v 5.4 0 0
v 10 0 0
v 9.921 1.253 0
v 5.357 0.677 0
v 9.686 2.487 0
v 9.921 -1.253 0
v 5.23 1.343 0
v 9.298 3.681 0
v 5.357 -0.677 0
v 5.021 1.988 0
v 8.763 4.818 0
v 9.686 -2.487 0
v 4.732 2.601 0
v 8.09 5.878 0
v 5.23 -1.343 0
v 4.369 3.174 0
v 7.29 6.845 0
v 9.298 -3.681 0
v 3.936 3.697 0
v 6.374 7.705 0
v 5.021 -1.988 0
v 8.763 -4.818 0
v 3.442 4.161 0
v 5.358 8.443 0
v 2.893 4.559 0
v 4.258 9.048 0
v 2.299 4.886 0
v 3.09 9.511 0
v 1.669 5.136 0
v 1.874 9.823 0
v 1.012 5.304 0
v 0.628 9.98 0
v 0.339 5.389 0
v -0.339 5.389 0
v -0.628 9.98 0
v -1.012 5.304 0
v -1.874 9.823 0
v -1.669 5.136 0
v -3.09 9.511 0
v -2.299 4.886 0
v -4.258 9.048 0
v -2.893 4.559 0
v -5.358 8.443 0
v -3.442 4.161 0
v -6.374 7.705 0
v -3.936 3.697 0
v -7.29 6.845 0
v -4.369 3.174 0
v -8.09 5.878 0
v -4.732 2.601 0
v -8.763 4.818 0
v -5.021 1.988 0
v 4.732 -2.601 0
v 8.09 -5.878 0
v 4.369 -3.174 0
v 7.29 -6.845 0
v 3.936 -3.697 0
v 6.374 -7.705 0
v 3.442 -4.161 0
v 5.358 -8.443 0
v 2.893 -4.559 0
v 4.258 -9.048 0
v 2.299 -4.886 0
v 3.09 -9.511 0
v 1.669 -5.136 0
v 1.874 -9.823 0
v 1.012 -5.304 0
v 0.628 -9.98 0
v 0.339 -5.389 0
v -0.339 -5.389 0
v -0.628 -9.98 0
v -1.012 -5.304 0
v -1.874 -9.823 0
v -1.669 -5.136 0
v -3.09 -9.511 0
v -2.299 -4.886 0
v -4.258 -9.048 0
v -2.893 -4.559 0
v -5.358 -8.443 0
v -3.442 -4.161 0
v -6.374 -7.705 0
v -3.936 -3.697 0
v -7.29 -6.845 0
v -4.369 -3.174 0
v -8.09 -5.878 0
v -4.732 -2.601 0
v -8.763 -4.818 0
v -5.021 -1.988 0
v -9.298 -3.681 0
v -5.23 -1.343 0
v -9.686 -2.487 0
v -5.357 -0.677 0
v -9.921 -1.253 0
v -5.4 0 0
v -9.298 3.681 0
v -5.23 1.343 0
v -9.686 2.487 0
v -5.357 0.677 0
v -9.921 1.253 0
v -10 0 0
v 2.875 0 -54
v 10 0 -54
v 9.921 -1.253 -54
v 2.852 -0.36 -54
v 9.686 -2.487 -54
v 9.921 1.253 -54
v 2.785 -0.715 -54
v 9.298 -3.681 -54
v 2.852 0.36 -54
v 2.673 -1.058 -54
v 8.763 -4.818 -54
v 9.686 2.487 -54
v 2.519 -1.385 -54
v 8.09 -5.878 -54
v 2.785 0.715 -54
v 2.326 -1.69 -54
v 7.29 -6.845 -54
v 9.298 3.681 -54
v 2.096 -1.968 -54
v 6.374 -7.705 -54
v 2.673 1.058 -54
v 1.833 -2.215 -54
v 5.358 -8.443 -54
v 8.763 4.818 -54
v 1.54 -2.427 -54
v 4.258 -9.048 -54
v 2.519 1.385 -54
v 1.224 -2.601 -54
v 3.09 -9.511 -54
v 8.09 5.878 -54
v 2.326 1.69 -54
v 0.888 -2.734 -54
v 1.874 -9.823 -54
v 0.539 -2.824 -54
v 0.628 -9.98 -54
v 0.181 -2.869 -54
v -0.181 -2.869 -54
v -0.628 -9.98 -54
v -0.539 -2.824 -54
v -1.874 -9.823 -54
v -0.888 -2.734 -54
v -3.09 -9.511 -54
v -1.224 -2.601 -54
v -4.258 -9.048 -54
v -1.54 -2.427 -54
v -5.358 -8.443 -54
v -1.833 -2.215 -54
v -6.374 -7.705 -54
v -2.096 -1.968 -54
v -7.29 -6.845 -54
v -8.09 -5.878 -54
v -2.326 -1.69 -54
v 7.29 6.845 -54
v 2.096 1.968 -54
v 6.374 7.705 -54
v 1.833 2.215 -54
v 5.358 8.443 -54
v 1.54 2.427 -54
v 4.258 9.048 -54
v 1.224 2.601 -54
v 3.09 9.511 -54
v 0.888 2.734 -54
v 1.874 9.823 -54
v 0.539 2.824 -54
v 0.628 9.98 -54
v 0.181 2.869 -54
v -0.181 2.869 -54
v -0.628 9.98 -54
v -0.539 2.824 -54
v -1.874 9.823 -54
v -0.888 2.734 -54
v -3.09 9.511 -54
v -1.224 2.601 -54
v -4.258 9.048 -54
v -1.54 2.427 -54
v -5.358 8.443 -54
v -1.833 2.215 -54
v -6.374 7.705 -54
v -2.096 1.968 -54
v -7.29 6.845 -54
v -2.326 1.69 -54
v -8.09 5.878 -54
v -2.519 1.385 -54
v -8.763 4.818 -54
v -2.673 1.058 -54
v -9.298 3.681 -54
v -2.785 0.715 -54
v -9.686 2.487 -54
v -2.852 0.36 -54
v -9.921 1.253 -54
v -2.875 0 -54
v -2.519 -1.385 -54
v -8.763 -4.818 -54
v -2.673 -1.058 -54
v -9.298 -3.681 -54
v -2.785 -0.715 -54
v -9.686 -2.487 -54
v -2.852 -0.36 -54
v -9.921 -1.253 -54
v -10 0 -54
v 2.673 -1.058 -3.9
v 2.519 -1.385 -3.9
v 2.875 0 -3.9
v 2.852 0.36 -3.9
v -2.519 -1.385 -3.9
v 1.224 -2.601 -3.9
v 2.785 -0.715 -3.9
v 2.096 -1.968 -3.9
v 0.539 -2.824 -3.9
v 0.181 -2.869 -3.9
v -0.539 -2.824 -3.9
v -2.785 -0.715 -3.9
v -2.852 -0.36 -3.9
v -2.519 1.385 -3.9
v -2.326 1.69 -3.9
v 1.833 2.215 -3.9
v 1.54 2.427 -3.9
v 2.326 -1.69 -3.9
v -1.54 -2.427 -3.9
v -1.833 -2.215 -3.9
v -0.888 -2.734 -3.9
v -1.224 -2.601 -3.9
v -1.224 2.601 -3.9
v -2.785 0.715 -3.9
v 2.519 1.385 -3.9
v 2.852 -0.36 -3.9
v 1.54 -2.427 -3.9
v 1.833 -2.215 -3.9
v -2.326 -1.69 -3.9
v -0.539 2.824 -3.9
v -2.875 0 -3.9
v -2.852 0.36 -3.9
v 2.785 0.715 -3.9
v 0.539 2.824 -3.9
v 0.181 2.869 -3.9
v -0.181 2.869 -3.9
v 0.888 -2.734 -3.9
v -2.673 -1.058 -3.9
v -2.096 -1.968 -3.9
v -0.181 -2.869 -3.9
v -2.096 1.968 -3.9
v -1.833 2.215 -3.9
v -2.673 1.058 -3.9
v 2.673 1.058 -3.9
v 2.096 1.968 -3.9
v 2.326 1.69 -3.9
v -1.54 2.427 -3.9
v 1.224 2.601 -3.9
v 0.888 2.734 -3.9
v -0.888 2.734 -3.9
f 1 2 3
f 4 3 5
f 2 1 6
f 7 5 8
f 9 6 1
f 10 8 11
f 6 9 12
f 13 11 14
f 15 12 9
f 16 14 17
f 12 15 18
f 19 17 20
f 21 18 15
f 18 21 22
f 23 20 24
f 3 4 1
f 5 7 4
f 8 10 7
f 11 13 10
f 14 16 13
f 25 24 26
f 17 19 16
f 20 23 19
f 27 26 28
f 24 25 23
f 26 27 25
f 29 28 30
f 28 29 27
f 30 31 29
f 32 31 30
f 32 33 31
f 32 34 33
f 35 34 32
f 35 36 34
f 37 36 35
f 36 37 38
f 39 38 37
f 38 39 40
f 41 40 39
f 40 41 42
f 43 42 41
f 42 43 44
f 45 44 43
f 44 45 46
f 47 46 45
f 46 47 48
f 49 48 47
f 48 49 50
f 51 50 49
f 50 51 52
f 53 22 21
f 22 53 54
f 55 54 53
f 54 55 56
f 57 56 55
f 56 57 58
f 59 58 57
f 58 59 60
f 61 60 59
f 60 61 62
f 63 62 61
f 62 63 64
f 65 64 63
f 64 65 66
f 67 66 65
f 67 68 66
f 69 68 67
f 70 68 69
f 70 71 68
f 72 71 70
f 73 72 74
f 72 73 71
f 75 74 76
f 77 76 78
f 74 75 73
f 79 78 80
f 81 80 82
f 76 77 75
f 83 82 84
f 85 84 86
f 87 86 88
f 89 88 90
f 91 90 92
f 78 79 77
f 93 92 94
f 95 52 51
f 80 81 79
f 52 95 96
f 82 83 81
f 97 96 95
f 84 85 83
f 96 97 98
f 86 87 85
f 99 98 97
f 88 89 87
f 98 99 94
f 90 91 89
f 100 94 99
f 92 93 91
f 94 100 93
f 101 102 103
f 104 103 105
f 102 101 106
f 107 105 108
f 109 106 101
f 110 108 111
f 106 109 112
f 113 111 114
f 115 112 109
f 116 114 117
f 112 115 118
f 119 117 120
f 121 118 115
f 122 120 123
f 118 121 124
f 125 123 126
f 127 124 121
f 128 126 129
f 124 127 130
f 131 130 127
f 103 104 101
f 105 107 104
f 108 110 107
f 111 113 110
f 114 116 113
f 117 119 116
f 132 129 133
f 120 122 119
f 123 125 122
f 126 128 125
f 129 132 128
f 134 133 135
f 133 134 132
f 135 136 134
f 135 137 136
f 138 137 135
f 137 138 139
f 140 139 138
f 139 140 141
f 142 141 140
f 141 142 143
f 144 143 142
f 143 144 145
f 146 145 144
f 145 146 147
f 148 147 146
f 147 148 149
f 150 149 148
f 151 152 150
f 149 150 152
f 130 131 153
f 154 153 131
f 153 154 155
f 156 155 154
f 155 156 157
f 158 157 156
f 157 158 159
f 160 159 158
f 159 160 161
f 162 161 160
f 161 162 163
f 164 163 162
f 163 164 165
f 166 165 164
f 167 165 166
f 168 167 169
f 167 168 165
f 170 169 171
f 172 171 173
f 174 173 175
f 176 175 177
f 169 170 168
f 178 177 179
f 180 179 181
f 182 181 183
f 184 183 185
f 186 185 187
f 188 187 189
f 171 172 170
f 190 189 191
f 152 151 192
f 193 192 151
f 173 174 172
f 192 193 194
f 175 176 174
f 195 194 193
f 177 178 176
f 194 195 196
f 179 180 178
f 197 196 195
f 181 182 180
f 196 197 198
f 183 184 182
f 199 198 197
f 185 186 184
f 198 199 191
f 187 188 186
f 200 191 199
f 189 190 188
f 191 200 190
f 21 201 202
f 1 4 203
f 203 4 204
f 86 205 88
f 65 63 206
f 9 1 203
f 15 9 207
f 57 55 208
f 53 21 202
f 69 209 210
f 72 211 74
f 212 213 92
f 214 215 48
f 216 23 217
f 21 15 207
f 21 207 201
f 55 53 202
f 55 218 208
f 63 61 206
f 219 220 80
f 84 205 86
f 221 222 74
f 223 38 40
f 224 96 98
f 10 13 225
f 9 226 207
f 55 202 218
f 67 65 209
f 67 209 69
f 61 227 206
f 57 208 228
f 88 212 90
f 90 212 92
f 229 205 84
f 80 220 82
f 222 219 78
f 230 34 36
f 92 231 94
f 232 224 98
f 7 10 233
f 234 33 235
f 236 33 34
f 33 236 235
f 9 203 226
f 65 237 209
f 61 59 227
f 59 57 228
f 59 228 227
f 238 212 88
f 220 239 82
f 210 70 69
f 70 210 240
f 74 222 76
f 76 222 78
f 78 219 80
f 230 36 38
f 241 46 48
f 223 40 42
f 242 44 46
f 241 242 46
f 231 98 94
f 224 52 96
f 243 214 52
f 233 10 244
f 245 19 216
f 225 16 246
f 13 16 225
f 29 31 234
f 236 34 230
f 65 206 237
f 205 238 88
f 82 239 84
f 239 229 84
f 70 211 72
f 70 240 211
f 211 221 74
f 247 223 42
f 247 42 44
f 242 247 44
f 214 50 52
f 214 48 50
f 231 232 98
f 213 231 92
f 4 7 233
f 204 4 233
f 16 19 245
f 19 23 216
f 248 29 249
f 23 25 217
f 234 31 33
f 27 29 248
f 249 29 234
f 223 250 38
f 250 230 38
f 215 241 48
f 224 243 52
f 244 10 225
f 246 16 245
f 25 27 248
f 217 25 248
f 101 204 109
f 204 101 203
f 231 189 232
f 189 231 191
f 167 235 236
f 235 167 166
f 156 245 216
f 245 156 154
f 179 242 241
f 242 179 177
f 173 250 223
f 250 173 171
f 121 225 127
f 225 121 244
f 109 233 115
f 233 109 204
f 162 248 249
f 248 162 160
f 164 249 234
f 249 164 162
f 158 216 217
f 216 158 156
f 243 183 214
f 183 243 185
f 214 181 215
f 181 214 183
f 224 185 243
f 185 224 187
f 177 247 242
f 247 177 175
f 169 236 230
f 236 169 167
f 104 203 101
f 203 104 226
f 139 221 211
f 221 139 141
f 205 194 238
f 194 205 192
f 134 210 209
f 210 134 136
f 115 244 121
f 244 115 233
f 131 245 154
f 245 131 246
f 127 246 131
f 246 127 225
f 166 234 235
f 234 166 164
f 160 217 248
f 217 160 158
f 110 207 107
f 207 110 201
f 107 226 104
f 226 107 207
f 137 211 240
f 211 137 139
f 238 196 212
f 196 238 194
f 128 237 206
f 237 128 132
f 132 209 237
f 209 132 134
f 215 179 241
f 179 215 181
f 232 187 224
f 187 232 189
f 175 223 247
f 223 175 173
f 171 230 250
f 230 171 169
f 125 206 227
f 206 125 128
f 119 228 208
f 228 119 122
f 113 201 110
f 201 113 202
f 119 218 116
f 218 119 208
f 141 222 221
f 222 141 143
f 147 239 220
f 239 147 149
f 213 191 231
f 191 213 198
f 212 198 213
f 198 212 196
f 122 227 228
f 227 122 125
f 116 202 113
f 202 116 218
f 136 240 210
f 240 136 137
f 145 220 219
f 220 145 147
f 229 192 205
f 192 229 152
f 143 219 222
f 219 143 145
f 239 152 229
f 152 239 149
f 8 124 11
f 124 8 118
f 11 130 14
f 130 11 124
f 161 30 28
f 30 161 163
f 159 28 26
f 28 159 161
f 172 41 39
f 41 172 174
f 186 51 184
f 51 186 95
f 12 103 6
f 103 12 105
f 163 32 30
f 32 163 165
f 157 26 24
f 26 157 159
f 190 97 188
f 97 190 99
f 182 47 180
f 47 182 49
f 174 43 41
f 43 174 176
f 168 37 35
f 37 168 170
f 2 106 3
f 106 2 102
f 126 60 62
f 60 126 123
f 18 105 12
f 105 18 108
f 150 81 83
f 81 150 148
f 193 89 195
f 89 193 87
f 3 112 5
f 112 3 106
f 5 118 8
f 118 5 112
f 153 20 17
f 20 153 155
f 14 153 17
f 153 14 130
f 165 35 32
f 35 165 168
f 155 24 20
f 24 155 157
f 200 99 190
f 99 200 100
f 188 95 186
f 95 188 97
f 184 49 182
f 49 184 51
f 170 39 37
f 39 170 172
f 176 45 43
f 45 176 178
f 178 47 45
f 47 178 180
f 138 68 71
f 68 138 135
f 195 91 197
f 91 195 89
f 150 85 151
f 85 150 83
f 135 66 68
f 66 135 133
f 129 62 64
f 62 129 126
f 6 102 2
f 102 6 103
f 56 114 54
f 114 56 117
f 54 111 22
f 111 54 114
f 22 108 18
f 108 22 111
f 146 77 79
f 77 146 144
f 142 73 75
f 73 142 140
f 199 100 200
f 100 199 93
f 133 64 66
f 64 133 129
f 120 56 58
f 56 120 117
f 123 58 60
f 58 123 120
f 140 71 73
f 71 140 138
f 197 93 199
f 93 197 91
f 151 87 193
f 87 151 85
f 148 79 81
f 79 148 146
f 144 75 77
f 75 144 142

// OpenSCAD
$fn = 50;


difference() {
	union() {
		translate(v = [0, 0, -54.0000000000]) {
			cylinder(h = 54, r = 10.0000000000);
		}
		cylinder(h = 0, r = 16.0000000000);
	}
	union() {
		translate(v = [0, 0, 0]) {
			rotate(a = [0, 0, 0]) {
				difference() {
					union() {
						#translate(v = [0, 0, -54.0000000000]) {
							cylinder(h = 54, r = 2.6000000000);
						}
						#translate(v = [0, 0, -3.9000000000]) {
							cylinder(h = 3.9000000000, r = 10.0000000000, r1 = 2.8750000000, r2 = 5.4000000000);
						}
						#translate(v = [0, 0, -54.0000000000]) {
							cylinder(h = 54, r = 2.8750000000);
						}
						#translate(v = [0, 0, -54.0000000000]) {
							cylinder(h = 54, r = 2.6000000000);
						}
					}
					union();
				}
			}
		}
	}
}
